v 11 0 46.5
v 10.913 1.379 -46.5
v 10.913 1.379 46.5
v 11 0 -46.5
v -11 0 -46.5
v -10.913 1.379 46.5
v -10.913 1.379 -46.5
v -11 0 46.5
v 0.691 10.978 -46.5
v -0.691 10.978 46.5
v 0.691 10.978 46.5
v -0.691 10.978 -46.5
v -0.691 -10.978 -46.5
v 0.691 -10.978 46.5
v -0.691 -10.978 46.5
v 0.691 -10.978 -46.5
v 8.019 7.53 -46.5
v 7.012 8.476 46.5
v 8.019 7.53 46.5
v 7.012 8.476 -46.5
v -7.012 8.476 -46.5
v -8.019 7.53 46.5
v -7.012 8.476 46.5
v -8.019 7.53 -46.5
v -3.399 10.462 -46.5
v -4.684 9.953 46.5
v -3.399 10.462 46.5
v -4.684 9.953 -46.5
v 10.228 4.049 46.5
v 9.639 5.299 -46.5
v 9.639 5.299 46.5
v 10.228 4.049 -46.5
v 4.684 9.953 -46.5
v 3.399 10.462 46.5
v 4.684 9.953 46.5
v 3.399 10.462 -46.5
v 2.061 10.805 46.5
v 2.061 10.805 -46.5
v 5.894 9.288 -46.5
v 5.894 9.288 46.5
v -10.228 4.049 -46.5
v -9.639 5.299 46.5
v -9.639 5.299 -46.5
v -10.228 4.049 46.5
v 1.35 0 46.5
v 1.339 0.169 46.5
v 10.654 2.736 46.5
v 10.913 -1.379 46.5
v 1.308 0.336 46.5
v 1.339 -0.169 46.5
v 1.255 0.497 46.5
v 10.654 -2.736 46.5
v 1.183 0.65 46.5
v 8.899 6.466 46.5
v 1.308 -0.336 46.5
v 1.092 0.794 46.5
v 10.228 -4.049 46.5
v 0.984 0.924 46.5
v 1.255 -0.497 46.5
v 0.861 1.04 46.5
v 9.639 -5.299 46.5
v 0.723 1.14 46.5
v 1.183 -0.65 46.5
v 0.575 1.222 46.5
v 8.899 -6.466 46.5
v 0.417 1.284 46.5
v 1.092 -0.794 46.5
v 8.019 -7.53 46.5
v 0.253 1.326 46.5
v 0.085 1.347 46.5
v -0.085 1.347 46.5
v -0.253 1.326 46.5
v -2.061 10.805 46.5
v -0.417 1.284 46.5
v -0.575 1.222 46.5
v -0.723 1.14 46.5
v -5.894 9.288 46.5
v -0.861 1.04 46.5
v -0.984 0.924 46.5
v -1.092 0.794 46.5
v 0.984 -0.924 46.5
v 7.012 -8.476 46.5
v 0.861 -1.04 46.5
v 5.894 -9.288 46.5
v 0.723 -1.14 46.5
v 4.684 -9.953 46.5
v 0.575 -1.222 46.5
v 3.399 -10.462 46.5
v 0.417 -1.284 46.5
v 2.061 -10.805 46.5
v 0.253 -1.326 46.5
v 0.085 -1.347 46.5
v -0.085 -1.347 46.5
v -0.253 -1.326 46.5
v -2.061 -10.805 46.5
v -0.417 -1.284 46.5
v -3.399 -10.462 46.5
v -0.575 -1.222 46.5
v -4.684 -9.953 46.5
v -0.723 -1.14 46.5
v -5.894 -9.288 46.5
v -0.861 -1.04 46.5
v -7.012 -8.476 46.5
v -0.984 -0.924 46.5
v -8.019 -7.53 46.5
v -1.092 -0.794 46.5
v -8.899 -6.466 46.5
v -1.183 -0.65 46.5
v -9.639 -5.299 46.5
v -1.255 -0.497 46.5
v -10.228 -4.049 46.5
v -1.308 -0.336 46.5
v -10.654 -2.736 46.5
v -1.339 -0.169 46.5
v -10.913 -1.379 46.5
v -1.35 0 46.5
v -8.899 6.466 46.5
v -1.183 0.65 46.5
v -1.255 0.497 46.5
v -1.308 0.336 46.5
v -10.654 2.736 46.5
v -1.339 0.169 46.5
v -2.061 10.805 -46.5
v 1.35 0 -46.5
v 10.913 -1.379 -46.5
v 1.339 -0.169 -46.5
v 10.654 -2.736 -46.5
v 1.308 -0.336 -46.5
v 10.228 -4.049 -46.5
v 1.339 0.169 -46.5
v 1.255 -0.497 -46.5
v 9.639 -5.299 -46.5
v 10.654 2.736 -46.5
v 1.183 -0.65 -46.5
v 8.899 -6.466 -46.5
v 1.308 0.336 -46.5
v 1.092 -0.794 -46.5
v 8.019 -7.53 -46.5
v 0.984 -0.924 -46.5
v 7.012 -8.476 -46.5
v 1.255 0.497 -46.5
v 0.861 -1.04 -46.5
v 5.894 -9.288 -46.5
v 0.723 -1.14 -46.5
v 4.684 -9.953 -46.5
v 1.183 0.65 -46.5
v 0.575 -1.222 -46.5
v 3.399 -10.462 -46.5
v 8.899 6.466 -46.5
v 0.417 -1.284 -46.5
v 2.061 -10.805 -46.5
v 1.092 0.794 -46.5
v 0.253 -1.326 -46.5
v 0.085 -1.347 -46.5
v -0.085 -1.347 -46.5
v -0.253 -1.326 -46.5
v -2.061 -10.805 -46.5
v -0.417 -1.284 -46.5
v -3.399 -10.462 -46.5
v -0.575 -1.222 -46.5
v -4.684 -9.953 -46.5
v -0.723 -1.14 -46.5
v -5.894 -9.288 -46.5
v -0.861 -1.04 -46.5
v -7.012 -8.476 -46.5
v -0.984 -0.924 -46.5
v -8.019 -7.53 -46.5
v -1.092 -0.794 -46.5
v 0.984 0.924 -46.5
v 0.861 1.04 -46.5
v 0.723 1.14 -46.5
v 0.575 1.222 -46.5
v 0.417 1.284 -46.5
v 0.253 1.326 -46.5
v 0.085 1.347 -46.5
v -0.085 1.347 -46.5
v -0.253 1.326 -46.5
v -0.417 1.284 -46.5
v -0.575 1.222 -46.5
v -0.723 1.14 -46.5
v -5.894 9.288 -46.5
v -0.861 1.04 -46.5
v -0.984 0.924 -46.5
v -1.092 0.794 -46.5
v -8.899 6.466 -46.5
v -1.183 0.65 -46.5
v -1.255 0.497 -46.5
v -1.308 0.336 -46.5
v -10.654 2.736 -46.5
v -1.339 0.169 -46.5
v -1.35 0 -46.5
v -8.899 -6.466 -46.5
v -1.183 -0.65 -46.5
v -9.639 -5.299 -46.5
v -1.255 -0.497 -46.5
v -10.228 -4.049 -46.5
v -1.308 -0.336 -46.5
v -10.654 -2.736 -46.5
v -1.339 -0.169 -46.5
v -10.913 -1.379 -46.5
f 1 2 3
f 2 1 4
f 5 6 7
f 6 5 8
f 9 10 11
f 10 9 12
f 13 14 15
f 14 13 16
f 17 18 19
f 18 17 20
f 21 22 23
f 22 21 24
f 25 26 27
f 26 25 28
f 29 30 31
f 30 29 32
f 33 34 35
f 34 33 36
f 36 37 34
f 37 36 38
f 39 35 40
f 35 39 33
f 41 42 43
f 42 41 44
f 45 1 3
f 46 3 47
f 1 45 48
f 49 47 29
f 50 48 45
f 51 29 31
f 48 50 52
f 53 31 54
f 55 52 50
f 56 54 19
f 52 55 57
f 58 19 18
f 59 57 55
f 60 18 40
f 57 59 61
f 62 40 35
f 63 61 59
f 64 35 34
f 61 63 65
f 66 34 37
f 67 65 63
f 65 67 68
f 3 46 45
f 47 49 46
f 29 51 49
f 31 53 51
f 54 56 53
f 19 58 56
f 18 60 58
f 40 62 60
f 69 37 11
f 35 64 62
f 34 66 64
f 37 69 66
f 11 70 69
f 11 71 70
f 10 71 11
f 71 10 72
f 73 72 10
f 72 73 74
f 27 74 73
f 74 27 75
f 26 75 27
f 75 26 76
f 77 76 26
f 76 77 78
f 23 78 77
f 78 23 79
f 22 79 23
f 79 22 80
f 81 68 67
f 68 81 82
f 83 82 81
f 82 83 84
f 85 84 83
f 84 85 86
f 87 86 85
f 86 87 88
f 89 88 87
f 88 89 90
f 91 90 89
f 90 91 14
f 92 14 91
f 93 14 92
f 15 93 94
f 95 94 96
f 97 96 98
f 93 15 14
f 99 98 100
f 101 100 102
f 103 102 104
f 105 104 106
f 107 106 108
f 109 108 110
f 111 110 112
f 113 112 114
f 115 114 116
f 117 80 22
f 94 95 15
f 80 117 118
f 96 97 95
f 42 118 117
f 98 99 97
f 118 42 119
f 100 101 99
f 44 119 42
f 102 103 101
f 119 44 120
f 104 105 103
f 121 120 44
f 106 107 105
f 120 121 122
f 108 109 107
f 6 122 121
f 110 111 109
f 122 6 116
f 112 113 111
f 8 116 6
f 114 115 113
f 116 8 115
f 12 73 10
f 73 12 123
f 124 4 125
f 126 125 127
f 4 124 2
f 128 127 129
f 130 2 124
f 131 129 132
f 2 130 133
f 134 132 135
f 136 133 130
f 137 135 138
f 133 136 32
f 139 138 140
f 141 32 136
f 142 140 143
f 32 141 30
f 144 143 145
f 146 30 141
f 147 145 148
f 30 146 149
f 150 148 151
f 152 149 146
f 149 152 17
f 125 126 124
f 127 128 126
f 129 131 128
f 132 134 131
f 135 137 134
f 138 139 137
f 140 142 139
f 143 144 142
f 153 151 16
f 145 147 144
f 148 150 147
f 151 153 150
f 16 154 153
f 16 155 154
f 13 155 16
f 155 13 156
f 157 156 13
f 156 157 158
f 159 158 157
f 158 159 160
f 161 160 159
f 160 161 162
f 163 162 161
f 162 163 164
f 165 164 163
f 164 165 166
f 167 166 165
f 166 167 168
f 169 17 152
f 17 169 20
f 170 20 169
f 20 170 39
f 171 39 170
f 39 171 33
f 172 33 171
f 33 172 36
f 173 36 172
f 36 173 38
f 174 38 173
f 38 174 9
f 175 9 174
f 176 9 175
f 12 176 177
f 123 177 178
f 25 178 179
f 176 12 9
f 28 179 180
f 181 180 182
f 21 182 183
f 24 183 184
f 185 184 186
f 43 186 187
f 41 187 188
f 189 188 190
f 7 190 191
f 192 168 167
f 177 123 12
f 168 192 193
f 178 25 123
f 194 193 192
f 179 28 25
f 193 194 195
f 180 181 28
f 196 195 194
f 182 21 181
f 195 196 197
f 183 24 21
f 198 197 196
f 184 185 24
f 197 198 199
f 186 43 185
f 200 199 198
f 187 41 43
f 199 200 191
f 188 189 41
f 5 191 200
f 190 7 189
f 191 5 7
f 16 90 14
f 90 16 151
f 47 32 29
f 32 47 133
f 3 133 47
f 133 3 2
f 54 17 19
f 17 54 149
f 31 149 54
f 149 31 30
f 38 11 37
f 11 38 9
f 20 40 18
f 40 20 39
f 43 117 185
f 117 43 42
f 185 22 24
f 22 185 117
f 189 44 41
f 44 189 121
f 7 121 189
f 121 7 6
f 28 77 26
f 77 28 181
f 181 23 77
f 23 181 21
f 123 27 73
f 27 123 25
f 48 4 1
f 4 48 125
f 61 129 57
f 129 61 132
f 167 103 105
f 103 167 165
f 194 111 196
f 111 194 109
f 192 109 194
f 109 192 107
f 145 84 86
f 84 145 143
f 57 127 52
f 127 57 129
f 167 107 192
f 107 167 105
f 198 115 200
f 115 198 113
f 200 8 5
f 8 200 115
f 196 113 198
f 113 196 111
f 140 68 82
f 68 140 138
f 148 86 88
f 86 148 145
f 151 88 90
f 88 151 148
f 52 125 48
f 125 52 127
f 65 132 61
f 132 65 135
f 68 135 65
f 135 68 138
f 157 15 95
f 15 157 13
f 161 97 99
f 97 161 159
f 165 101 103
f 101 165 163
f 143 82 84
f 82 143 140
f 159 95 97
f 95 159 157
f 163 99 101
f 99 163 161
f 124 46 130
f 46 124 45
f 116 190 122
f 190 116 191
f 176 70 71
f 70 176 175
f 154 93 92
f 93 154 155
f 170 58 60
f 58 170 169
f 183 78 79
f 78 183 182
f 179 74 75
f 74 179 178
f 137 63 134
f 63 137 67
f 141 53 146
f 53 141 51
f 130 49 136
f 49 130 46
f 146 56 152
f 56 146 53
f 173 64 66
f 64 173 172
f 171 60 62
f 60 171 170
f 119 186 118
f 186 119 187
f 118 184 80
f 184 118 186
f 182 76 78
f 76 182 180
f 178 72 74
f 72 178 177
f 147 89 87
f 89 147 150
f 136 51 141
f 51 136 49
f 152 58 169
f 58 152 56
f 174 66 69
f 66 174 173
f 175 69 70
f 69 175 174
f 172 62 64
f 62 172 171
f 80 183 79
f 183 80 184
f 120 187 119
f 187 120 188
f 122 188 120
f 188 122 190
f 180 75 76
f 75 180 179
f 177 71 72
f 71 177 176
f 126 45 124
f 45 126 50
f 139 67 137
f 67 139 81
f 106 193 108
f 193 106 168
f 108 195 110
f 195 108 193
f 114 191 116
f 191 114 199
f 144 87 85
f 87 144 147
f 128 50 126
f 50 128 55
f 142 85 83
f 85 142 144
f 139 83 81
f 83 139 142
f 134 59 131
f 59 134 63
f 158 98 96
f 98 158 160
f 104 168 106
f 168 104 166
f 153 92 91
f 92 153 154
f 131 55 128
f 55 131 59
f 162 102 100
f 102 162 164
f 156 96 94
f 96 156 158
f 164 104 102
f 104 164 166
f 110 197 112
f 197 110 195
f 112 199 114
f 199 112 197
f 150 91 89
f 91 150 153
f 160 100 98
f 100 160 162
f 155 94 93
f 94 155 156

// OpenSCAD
$fn = 50;


difference() {
	union() {
		translate(v = [0, 0, -46.5000000000]) {
			cylinder(h = 93, r = 11.0000000000);
		}
	}
	union() {
		translate(v = [0, 0, -100.0000000000]) {
			cylinder(h = 200, r = 1.3500000000);
		}
	}
}
